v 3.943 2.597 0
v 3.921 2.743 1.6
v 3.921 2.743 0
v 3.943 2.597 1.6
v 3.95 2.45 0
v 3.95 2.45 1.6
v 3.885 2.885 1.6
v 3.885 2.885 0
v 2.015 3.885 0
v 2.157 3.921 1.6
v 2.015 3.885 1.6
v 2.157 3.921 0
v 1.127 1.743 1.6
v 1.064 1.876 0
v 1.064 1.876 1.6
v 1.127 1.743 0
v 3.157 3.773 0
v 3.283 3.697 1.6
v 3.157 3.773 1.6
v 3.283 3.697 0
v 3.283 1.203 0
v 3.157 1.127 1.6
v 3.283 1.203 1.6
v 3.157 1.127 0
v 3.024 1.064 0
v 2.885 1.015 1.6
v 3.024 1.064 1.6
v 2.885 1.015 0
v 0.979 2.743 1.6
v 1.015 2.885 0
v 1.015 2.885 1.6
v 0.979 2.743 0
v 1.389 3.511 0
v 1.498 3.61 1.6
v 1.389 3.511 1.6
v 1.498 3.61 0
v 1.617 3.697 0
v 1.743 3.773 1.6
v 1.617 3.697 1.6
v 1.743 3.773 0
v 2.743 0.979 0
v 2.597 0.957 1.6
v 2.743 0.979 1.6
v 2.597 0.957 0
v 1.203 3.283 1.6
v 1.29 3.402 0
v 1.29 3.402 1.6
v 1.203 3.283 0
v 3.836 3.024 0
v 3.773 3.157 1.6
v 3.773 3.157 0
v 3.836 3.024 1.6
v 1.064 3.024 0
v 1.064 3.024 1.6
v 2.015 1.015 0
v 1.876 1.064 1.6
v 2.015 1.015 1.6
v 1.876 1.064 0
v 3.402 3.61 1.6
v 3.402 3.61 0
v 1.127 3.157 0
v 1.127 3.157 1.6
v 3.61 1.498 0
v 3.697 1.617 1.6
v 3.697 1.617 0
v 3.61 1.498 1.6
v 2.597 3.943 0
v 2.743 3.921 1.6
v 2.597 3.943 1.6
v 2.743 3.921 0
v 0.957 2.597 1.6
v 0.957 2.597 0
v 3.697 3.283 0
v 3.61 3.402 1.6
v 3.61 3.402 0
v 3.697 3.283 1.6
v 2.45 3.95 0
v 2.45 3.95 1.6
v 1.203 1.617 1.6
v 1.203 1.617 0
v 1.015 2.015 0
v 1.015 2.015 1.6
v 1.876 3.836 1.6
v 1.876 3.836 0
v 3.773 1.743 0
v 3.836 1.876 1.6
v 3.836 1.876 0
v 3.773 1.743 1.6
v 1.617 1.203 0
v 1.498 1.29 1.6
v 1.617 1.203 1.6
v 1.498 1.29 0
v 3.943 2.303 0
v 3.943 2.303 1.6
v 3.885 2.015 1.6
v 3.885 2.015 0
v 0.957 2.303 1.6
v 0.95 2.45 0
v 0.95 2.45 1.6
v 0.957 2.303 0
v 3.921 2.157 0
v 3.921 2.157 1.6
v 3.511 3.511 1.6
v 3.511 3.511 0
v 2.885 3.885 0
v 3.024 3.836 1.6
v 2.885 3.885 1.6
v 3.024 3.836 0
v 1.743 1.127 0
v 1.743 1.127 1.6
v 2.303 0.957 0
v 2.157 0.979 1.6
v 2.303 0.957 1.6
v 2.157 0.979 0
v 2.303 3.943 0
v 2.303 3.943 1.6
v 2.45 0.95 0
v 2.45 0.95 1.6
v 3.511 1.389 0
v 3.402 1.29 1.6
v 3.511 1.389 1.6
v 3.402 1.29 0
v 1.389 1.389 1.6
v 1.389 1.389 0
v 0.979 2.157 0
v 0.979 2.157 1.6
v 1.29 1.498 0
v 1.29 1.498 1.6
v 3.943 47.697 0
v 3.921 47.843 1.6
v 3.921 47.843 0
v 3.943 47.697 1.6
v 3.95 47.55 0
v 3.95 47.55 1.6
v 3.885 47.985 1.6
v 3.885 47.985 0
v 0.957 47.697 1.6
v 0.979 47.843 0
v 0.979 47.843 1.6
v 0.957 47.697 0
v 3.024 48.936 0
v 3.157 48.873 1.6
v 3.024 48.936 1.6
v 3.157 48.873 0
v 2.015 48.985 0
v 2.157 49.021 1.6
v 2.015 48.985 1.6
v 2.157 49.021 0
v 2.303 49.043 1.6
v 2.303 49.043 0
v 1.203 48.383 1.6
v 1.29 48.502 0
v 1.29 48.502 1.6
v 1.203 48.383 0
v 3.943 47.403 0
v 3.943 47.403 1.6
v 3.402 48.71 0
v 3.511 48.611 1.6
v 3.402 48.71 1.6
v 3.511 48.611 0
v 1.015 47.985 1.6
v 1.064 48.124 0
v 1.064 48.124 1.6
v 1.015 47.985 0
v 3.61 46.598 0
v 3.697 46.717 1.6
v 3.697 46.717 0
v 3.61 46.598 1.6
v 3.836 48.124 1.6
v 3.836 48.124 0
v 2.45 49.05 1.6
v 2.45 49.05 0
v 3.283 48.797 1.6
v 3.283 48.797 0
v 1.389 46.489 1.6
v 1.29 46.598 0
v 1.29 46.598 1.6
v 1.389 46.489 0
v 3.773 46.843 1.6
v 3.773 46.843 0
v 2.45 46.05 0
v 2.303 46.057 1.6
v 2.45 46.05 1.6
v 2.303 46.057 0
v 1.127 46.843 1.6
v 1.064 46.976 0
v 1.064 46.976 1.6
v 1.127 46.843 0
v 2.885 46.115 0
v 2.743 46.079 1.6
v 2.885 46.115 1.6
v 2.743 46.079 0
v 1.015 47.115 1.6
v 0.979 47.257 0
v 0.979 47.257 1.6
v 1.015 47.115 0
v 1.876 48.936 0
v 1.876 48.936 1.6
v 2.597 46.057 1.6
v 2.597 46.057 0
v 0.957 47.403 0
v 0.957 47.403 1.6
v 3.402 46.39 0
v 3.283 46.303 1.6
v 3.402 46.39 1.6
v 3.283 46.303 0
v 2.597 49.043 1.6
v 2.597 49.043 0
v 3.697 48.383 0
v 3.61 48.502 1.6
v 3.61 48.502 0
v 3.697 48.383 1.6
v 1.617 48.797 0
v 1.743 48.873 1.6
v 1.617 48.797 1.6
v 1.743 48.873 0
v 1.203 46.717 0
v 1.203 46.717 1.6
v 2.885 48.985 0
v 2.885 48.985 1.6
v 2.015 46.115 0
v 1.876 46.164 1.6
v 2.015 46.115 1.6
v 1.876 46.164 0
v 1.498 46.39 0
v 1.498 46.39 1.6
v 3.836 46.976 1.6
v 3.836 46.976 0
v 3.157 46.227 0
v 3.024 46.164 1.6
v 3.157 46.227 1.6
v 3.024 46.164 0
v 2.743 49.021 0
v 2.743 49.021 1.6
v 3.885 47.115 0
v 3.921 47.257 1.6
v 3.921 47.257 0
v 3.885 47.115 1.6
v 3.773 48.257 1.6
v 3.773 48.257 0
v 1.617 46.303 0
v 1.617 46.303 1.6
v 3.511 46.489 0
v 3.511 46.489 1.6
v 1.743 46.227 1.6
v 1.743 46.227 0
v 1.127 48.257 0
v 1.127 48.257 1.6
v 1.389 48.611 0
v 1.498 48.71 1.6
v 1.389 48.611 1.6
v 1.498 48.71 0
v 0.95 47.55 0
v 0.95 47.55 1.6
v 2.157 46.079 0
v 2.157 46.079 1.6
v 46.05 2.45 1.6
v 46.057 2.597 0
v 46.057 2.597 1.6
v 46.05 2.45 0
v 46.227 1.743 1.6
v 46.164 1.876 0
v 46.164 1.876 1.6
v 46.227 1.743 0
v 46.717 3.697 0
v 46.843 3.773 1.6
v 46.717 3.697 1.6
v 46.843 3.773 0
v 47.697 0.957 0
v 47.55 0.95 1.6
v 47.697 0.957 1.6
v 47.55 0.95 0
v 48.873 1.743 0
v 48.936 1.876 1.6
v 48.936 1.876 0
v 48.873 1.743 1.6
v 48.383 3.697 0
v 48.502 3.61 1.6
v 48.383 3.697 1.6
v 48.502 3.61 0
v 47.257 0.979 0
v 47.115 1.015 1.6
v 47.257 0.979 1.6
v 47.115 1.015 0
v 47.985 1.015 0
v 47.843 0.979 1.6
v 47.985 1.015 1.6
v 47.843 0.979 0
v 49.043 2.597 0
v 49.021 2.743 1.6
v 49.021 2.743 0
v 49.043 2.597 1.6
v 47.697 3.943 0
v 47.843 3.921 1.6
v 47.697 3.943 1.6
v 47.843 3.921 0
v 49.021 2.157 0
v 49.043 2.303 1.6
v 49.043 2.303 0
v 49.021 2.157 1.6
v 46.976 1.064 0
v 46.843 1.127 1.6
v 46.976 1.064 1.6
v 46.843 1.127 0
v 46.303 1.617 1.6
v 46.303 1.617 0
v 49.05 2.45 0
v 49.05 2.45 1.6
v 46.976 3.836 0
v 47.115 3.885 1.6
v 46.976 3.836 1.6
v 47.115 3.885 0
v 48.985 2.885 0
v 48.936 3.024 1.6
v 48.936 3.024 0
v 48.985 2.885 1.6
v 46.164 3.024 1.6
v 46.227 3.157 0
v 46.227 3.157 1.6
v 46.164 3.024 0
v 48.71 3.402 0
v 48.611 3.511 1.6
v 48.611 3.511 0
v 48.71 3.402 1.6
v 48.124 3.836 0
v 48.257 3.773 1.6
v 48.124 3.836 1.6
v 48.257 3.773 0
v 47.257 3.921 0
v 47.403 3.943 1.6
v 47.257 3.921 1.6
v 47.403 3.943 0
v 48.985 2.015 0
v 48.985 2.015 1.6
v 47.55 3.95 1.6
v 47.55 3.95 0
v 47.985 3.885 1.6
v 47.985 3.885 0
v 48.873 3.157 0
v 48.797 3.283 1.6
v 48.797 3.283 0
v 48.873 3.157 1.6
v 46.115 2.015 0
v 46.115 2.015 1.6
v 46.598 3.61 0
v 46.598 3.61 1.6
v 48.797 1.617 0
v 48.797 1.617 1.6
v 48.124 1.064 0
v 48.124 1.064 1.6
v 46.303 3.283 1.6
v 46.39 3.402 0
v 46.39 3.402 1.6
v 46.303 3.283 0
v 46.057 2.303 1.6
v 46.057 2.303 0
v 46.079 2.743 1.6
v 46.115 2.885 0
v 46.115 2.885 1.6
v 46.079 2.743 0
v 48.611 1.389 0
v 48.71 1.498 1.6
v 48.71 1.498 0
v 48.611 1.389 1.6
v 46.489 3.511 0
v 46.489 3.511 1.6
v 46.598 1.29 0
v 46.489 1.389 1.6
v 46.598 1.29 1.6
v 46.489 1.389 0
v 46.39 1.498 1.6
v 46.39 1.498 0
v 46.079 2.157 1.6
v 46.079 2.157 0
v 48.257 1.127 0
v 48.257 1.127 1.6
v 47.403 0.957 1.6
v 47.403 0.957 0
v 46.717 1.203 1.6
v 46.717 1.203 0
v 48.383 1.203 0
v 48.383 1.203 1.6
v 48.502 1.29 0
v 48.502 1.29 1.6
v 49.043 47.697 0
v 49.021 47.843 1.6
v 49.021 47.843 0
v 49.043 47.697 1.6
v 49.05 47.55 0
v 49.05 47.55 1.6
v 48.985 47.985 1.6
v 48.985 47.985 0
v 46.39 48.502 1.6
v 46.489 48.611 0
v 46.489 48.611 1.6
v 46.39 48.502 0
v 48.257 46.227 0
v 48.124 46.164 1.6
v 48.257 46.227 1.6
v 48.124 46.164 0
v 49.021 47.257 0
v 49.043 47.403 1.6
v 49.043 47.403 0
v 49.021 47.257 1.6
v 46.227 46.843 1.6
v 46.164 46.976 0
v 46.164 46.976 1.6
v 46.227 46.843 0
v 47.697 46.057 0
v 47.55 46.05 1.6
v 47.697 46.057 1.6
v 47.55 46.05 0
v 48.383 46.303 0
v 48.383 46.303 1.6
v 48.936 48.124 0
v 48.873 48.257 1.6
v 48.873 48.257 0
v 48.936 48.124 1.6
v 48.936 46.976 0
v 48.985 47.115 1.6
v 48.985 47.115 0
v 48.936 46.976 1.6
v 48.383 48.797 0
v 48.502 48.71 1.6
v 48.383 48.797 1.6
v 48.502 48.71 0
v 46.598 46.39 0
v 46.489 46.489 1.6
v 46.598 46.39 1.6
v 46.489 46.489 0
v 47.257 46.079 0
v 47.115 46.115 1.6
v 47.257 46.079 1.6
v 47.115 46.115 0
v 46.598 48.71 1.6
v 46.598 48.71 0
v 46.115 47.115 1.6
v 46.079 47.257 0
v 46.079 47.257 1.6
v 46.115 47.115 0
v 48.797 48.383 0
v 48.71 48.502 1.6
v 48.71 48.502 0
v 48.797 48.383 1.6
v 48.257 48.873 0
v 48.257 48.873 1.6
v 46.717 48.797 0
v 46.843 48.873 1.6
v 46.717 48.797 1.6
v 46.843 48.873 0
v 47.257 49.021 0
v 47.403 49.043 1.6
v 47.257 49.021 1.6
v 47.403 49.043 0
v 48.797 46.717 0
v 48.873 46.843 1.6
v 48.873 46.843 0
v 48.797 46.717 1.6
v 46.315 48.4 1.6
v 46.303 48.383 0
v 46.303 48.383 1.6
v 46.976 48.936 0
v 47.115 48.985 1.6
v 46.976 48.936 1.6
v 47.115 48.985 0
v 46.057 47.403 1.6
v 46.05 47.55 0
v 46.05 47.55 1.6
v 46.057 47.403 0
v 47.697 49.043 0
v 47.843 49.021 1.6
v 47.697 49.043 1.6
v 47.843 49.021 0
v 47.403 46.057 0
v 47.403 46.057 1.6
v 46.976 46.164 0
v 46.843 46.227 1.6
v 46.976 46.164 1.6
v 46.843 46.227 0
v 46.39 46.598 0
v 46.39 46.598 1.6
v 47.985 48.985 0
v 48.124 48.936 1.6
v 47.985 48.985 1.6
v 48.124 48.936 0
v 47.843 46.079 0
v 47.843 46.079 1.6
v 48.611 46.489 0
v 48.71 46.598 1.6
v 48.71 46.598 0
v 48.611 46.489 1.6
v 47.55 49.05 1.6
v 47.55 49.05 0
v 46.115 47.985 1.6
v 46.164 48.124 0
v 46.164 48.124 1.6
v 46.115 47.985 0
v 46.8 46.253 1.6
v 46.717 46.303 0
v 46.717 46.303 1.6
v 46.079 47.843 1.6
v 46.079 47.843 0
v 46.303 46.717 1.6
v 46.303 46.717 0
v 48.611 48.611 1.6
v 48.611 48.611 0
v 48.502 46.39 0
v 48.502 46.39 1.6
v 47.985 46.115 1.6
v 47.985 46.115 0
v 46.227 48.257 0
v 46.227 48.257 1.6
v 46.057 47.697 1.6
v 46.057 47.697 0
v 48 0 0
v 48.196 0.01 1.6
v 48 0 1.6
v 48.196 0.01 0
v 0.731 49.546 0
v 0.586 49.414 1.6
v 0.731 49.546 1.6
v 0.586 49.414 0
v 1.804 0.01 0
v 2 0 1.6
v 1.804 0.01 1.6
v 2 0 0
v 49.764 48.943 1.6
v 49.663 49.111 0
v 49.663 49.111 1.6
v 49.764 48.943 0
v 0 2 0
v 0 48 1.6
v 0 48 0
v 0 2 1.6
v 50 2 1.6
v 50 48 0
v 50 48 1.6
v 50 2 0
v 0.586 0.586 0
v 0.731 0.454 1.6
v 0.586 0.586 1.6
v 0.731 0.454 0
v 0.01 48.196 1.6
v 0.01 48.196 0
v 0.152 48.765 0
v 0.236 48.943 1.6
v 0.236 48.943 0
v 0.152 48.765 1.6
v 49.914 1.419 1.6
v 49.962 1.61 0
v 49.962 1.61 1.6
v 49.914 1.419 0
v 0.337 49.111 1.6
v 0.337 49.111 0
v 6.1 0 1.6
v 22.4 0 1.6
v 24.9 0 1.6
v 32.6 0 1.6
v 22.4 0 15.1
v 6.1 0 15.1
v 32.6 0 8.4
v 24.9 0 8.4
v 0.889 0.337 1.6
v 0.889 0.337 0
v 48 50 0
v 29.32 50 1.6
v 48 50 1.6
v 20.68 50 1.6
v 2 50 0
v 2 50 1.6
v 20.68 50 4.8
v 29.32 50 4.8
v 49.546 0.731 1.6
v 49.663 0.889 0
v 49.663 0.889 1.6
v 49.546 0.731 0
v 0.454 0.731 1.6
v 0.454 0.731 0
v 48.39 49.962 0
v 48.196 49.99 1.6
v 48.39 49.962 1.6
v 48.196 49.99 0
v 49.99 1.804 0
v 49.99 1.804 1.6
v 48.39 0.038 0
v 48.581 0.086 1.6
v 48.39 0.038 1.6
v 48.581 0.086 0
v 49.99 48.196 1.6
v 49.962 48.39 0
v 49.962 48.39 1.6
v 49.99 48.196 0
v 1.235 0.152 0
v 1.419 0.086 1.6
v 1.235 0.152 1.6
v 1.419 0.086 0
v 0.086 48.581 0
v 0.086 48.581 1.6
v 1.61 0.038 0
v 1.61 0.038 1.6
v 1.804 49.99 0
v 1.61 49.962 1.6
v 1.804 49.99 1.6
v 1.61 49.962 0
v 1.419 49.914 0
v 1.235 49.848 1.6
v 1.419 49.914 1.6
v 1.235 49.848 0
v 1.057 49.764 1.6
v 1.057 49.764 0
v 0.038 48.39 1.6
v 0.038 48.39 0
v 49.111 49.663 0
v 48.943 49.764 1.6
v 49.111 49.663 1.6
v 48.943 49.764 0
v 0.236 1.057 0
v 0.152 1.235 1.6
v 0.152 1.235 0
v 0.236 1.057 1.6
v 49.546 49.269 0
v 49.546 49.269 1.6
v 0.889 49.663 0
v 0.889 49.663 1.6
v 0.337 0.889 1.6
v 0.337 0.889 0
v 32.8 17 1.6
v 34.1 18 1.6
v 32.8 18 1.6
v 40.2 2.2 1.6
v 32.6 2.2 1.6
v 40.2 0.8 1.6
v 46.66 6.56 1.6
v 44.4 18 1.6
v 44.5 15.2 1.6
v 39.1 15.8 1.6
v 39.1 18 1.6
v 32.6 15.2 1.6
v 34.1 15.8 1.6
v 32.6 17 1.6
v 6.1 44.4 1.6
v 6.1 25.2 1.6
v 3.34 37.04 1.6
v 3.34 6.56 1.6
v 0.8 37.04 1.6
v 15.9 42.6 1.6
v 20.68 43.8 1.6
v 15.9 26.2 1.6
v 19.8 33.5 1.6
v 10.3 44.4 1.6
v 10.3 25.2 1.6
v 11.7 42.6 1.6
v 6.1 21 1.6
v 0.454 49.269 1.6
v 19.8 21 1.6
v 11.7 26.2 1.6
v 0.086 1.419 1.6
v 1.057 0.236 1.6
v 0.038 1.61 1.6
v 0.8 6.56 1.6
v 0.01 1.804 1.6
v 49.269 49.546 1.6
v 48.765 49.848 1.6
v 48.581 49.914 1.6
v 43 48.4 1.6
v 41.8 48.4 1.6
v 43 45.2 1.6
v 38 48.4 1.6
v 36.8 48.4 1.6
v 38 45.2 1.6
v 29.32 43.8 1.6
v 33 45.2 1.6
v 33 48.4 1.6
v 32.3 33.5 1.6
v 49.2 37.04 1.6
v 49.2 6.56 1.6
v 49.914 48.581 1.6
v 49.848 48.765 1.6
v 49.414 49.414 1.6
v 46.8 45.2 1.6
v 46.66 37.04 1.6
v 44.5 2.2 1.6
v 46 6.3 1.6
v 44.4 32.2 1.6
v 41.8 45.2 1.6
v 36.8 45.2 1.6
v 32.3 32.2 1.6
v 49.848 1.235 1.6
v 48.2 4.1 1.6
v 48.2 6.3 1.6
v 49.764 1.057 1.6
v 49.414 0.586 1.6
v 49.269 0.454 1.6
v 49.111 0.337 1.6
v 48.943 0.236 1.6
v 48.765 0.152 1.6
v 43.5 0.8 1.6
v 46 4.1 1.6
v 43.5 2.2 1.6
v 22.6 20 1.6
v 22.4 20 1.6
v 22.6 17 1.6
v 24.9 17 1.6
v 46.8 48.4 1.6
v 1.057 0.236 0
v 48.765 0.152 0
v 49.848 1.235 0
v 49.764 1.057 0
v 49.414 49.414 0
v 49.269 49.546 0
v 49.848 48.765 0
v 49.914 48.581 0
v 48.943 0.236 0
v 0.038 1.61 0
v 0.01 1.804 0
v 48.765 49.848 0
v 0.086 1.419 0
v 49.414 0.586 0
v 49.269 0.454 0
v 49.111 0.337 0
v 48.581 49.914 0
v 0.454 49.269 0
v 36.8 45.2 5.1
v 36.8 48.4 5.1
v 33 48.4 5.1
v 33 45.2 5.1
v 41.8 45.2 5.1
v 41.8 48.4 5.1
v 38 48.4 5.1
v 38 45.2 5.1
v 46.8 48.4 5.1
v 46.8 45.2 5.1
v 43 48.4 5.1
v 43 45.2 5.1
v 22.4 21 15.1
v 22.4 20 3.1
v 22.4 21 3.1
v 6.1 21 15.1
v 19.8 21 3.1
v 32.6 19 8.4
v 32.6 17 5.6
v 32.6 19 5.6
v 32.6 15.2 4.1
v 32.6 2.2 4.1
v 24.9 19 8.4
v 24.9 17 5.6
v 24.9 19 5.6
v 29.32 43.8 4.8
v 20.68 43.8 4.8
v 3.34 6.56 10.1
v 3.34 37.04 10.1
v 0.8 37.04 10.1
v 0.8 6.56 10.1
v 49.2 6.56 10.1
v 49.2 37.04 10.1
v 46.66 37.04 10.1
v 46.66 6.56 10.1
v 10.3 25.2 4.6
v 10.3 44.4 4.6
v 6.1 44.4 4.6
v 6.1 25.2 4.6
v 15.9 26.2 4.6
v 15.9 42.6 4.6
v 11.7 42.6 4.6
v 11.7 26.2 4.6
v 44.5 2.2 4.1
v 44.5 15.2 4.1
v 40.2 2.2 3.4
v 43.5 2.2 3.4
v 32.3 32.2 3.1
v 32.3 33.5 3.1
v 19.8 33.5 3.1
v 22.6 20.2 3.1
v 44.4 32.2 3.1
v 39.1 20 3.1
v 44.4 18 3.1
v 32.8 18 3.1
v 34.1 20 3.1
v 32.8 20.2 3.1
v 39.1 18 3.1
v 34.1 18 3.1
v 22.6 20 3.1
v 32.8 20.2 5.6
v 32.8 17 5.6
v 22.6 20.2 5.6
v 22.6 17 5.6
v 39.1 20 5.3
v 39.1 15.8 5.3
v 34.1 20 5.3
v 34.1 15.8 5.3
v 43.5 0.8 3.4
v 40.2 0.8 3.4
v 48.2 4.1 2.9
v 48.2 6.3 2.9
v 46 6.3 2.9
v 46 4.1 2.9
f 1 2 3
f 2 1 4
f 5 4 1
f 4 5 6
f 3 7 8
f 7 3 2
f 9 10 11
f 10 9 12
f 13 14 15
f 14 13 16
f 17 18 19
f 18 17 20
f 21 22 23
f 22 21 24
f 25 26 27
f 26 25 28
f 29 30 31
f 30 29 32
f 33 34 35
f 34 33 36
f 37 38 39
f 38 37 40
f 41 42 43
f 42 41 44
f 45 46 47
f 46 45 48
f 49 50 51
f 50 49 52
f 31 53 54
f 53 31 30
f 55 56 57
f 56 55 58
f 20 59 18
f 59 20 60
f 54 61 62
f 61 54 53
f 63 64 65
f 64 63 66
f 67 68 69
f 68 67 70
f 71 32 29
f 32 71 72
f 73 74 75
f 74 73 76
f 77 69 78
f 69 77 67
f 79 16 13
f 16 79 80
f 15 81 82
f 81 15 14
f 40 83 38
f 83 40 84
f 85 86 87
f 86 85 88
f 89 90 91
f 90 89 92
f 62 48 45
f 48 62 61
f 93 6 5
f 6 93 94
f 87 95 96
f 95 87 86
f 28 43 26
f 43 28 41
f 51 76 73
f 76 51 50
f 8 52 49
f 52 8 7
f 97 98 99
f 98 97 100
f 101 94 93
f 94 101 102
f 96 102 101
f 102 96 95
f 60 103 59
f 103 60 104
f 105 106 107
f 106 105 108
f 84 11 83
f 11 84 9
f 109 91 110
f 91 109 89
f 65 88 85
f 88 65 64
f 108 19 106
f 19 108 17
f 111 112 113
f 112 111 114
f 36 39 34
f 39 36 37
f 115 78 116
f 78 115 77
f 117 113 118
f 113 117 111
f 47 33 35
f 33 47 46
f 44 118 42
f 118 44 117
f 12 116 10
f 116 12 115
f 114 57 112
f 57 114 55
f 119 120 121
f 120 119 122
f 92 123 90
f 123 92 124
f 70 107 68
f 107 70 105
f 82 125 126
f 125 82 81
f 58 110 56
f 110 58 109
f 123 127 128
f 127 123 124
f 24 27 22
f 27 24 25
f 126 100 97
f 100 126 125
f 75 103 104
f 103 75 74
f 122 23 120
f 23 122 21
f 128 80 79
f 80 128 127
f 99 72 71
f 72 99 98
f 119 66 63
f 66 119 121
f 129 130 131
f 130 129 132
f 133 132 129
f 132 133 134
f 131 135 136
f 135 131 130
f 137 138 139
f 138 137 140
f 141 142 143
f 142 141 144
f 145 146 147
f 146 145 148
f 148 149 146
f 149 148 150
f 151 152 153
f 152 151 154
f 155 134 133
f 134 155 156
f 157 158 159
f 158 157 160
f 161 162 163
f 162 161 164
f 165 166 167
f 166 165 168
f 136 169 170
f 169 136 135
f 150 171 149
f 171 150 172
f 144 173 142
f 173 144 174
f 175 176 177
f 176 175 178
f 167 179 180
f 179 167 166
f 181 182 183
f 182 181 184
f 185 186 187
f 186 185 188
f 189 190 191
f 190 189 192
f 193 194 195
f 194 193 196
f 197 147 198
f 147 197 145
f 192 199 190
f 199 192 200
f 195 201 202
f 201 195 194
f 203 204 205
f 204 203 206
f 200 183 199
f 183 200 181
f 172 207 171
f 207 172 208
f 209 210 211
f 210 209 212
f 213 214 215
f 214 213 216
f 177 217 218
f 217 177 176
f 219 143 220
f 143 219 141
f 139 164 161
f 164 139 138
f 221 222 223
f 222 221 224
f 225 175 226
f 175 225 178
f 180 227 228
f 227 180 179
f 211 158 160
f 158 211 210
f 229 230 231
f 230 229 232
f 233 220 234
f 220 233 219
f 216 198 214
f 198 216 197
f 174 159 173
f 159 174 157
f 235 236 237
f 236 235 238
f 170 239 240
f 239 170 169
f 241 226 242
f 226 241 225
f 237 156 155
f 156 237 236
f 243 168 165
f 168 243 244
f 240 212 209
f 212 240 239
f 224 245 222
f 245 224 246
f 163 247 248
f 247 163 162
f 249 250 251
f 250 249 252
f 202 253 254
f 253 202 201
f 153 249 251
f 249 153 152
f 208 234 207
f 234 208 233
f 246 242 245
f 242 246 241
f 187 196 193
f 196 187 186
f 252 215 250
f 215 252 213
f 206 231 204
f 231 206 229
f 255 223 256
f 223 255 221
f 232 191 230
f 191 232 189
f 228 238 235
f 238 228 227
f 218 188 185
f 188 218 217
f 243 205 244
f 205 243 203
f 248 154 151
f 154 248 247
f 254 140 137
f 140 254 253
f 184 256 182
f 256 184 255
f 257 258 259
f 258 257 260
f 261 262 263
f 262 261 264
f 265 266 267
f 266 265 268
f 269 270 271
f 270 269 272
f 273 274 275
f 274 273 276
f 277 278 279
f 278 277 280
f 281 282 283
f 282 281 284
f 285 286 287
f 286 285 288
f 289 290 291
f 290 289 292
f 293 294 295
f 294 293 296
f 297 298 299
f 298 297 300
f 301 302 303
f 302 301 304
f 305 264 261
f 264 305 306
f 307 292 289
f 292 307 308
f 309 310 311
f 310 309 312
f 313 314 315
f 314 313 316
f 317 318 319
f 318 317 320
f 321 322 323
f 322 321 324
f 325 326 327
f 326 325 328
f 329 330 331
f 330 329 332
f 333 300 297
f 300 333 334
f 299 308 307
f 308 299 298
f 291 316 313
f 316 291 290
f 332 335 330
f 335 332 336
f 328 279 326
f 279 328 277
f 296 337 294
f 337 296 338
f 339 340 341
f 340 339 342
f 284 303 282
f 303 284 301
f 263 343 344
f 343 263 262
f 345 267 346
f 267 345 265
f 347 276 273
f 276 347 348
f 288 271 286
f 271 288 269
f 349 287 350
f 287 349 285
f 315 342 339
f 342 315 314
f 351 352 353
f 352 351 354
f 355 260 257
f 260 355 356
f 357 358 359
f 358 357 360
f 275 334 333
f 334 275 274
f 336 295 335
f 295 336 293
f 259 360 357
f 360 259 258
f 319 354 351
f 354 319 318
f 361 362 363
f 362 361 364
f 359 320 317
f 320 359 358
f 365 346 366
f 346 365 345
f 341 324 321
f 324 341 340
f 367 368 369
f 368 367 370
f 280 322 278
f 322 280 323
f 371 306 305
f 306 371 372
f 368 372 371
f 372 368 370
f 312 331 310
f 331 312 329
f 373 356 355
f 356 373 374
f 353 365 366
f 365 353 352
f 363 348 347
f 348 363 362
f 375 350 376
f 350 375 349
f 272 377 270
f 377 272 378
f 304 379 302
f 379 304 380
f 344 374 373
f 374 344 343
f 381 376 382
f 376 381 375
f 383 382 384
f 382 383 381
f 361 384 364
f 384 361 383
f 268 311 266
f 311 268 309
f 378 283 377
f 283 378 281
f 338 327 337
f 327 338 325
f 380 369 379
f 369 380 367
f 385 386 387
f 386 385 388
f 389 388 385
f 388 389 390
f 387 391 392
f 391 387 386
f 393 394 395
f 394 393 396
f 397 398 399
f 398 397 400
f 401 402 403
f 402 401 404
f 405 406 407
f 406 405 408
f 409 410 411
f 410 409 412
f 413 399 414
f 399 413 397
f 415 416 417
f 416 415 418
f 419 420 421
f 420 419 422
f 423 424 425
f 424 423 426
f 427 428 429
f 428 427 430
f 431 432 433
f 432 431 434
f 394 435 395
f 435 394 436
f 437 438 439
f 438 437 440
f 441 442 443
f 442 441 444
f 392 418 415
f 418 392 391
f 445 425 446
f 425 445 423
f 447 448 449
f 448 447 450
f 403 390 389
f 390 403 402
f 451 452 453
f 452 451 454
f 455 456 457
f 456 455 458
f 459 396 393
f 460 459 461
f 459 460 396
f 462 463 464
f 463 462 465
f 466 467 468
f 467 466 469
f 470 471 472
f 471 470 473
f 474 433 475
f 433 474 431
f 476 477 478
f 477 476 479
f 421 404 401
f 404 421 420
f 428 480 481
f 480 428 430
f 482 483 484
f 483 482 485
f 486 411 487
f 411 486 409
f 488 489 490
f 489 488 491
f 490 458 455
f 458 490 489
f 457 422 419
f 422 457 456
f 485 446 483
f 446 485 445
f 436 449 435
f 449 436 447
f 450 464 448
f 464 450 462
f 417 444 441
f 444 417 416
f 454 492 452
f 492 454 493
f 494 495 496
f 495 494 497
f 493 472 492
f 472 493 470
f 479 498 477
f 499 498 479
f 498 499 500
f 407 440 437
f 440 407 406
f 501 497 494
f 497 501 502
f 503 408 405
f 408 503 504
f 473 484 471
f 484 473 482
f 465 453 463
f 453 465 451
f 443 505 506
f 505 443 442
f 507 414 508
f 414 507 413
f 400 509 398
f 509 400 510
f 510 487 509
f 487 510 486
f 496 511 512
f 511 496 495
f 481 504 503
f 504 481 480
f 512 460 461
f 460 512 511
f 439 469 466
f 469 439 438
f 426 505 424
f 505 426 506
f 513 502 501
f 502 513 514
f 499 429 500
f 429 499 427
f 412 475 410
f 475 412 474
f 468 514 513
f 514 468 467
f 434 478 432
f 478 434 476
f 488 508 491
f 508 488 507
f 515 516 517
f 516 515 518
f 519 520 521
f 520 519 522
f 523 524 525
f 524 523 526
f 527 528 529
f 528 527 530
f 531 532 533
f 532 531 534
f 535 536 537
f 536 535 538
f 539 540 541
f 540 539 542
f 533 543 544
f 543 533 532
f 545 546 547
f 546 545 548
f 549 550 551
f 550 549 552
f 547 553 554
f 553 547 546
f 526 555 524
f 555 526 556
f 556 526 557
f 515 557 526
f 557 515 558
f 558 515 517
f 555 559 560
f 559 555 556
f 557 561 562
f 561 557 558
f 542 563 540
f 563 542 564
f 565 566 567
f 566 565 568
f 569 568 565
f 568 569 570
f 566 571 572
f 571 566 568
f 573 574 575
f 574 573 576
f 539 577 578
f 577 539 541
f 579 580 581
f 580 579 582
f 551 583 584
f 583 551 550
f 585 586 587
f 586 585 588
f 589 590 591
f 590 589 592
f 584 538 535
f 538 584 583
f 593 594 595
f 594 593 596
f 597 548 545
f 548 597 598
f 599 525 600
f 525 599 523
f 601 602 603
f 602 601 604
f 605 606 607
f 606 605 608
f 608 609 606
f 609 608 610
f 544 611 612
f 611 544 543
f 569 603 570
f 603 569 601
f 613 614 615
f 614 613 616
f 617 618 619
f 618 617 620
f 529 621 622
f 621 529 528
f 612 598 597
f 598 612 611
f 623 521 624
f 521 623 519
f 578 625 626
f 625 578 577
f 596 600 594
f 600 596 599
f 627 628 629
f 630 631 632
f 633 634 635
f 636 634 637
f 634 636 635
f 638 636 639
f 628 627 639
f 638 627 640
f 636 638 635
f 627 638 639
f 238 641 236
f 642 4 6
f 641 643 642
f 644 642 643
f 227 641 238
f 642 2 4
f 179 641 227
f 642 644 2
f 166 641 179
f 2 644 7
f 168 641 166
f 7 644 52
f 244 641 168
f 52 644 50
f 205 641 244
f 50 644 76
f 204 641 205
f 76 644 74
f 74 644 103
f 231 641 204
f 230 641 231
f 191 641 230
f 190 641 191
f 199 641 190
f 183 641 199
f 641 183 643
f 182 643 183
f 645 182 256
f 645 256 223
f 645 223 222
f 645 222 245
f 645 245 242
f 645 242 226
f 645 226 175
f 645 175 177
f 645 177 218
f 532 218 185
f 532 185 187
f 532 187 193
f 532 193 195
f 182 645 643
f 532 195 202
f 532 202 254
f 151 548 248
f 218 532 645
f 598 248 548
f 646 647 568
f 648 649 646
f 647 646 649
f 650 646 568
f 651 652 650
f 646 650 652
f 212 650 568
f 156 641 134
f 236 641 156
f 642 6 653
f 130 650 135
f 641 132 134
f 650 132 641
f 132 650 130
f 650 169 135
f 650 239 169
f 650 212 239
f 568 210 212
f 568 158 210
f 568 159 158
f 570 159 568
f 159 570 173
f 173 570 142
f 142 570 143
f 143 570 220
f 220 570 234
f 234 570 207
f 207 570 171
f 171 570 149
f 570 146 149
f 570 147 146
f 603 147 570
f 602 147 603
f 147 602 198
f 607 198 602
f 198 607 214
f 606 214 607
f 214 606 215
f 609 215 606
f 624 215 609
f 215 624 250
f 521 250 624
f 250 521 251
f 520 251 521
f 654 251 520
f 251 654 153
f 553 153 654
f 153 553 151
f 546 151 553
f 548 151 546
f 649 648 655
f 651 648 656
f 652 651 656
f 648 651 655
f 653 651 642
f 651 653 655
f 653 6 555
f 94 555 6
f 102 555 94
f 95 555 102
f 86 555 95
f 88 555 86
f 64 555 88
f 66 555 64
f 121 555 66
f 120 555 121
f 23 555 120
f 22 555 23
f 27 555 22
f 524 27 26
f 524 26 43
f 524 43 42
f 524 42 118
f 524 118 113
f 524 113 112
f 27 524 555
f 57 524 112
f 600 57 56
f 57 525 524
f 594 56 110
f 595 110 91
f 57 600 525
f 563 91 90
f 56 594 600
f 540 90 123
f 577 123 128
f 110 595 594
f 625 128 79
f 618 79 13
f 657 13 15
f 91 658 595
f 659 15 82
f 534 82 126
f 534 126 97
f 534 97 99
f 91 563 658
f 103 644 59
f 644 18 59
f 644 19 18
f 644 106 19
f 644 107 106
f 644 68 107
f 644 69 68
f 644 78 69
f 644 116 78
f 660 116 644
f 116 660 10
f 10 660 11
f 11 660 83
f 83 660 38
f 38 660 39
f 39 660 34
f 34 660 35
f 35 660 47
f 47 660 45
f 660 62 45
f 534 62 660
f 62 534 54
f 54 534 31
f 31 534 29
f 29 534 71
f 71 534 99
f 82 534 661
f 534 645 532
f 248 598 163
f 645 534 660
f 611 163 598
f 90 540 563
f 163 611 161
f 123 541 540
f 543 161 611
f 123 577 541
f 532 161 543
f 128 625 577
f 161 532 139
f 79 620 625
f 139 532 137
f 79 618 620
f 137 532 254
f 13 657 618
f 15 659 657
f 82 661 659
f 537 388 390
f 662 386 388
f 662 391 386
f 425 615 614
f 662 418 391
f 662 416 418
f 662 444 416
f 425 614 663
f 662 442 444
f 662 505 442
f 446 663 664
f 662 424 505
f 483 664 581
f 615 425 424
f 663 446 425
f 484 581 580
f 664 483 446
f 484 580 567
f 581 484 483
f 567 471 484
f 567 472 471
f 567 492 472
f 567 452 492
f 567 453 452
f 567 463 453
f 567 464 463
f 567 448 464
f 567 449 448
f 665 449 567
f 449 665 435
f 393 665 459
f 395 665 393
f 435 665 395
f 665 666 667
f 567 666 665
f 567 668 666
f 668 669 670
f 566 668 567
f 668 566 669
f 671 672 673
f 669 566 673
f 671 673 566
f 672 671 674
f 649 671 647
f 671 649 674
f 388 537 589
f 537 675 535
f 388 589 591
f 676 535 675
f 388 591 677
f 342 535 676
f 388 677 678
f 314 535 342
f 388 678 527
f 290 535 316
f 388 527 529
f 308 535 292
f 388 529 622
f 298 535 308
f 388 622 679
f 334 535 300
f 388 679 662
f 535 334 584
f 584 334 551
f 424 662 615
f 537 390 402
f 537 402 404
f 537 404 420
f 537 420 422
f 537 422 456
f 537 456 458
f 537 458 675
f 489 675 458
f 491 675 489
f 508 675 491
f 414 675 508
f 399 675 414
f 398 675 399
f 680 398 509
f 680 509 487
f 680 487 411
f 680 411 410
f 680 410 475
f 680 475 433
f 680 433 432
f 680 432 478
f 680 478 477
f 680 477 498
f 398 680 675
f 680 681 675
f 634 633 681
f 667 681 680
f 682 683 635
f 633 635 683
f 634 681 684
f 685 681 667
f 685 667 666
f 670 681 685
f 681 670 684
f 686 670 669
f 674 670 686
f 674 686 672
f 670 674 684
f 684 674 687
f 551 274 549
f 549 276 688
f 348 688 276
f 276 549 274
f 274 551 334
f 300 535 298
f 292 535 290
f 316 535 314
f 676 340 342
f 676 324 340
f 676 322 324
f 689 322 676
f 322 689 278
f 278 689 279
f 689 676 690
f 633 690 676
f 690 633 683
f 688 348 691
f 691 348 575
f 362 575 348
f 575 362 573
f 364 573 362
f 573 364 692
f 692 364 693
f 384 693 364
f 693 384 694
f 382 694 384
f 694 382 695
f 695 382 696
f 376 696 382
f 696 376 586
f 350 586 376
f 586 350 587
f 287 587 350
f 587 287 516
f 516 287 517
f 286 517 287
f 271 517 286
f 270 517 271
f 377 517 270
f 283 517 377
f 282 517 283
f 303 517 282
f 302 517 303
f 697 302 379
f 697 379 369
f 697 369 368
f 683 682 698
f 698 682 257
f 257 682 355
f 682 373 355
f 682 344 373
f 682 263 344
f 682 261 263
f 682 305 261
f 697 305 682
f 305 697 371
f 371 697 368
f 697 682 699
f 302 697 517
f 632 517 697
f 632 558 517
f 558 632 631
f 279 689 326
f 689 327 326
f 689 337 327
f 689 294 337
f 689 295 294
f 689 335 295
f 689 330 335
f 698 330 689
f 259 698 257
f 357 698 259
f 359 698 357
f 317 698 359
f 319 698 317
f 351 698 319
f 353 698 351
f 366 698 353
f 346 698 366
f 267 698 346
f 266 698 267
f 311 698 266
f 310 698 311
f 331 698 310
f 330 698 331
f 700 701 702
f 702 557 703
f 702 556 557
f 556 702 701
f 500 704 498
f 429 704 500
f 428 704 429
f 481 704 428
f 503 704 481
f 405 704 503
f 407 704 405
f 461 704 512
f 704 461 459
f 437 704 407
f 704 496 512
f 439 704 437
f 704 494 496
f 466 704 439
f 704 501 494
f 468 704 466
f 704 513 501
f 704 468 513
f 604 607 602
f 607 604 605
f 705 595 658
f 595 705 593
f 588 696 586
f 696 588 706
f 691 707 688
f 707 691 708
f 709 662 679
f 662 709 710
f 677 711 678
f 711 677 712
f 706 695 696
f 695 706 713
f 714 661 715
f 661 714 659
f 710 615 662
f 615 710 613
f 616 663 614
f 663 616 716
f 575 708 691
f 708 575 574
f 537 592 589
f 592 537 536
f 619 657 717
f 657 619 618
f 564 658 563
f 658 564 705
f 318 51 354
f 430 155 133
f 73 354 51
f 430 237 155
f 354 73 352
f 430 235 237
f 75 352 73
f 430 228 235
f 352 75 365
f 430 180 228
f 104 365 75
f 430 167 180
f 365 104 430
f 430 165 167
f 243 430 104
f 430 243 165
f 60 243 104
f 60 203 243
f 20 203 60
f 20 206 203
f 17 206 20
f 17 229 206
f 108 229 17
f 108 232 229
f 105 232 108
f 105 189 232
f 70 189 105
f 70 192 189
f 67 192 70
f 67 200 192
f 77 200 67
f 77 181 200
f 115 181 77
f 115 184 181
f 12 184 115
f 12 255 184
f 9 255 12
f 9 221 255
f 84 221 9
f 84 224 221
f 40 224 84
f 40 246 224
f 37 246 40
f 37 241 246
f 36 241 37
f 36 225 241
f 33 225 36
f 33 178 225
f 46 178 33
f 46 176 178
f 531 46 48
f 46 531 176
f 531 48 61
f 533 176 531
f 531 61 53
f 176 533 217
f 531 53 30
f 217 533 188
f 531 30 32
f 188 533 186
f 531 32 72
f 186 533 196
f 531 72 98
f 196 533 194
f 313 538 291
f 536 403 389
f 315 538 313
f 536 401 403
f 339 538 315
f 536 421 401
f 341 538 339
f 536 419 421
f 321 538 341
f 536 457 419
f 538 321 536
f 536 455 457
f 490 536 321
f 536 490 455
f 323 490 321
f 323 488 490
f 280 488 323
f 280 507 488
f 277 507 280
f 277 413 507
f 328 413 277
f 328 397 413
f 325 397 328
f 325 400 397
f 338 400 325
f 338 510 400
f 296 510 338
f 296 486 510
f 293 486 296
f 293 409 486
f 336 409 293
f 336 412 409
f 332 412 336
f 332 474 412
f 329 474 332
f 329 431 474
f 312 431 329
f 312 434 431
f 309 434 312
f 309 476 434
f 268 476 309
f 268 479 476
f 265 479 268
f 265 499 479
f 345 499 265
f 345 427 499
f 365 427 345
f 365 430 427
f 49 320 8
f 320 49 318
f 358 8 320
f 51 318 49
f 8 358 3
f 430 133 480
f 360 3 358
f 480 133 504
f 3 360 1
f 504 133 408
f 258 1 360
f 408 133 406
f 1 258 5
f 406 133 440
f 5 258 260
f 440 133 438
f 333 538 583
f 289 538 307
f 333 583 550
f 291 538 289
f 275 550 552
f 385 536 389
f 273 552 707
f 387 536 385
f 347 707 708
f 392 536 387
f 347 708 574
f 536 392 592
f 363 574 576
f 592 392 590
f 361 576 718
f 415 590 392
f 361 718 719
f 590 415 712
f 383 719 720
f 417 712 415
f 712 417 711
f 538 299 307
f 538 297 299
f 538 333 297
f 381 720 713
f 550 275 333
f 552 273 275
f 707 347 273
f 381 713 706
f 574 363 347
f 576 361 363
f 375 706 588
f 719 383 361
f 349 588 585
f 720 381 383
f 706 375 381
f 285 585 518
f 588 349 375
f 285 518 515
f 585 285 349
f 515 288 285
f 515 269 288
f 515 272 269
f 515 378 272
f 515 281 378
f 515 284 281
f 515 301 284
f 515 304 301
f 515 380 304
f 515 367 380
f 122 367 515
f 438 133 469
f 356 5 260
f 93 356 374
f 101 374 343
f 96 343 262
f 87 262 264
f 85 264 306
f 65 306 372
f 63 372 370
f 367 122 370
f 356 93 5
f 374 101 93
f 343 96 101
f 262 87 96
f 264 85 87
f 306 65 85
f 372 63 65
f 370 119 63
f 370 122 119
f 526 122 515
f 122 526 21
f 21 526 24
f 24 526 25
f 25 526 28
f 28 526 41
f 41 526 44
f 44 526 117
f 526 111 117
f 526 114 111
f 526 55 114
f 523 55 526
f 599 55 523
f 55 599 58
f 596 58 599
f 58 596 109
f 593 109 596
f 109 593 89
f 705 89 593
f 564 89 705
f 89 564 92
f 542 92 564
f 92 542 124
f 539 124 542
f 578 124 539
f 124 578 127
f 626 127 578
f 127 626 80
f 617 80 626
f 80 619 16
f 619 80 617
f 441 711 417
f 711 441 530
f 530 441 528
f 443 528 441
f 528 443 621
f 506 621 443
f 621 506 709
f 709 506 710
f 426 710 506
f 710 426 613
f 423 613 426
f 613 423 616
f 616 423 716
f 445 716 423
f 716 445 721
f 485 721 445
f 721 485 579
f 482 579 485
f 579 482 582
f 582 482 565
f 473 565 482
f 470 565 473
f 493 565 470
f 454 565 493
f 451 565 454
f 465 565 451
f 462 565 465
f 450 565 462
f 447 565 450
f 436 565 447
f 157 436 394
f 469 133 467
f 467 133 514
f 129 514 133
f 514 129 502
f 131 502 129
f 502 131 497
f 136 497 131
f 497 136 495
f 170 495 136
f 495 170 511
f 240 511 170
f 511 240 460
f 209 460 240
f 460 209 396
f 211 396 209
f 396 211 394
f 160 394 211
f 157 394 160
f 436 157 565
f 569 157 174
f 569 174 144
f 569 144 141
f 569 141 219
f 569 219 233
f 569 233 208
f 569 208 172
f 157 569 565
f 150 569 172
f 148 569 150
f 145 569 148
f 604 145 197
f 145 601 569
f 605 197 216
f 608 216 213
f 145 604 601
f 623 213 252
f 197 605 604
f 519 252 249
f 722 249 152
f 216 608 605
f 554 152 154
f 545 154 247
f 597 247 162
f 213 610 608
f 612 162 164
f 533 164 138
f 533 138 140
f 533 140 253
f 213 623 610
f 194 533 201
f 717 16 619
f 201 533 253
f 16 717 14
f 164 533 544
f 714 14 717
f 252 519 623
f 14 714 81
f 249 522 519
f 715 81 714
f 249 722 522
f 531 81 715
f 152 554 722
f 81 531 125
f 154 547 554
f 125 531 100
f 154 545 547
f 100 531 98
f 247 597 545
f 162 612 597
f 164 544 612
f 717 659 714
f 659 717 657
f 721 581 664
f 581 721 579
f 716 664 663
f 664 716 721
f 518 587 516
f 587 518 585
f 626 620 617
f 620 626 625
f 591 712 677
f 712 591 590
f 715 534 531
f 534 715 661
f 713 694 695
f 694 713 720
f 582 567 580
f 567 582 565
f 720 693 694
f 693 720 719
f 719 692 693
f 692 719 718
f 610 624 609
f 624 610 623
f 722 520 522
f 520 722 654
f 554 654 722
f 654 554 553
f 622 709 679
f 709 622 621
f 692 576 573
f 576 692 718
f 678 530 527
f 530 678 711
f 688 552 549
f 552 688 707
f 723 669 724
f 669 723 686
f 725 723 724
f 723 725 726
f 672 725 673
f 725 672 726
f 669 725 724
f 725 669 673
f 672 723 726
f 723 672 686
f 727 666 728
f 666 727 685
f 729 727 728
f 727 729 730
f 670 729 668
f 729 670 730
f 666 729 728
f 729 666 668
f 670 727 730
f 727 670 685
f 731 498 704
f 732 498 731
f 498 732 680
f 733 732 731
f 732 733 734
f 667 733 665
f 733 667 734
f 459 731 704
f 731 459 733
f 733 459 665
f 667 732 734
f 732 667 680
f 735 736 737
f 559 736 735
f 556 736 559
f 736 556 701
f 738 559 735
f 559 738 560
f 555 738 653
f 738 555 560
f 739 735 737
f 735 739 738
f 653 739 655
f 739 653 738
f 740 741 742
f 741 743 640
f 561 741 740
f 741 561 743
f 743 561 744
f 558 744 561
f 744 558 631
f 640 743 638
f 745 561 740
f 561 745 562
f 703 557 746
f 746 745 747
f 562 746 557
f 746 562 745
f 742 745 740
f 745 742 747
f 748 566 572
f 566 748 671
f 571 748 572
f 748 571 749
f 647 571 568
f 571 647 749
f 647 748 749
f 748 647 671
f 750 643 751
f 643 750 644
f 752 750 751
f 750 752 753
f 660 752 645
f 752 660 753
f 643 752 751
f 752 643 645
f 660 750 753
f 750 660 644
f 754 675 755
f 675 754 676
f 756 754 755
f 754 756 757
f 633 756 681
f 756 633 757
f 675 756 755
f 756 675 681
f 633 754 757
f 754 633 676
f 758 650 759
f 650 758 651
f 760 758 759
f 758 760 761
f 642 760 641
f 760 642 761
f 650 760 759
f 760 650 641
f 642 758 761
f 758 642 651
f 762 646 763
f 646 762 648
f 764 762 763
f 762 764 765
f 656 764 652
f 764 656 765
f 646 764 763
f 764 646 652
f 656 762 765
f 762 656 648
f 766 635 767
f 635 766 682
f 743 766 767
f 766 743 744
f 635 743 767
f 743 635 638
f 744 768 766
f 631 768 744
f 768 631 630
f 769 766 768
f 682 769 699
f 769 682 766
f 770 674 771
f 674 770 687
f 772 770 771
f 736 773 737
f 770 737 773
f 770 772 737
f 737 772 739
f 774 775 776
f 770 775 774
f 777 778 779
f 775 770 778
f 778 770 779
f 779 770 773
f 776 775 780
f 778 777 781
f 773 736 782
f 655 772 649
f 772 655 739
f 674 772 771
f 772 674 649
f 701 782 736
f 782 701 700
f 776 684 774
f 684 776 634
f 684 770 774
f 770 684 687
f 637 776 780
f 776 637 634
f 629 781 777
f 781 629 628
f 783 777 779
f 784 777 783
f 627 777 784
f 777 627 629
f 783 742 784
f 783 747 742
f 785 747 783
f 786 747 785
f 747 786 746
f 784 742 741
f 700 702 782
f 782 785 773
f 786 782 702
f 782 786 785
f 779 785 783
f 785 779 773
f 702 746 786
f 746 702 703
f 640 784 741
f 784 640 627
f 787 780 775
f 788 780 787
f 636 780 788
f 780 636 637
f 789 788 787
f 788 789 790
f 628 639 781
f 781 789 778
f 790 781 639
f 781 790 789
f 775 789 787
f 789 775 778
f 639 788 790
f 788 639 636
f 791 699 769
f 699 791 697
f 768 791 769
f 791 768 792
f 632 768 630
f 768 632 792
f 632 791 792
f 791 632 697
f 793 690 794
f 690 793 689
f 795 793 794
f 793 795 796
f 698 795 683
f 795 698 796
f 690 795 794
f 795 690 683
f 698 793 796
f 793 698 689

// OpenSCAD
// Luckfox Pico Ultra W enclosure-fit mock.
// Units: mm.
//
// Hard dimensions come from the Luckfox board drawing and product dimension
// image. Component heights are conservative nominal envelopes based on the
// installed connector families and must be checked against the received board
// before finalizing port cutouts or standoffs.

$fn = 64;

board_x = 50.00;
board_y = 50.00;
board_r = 2.00;
pcb_thickness = 1.60;

mount_hole_d = 3.00;
mount_hole_edge = (50.00 - 45.10) / 2;

module rounded_xy_prism(size_x, size_y, radius, height) {
    linear_extrude(height = height)
        offset(r = radius)
            translate([radius, radius])
                square([size_x - 2 * radius, size_y - 2 * radius]);
}

module pcb() {
    difference() {
        rounded_xy_prism(board_x, board_y, board_r, pcb_thickness);
        for (x = [mount_hole_edge, board_x - mount_hole_edge])
            for (y = [mount_hole_edge, board_y - mount_hole_edge])
                translate([x, y, -0.1])
                    cylinder(d = mount_hole_d, h = pcb_thickness + 0.2);
    }
}

module component_block(origin, size) {
    translate(origin) cube(size);
}

union() {
    pcb();

    // Tall edge connectors. Y=0 is the Ethernet/USB-A edge.
    component_block([6.10, 0.00, pcb_thickness], [16.30, 21.00, 13.50]); // RJ45
    component_block([24.90, 0.00, pcb_thickness], [7.70, 19.00, 6.80]);  // USB-A
    component_block([20.68, 43.80, pcb_thickness], [8.64, 6.20, 3.20]); // USB-C

    // The dimension drawing fixes the header start and length.
    component_block([0.80, 6.56, pcb_thickness], [2.54, 30.48, 8.50]);
    component_block([46.66, 6.56, pcb_thickness], [2.54, 30.48, 8.50]);

    // FFC connectors and mechanically significant onboard blocks.
    component_block([6.10, 25.20, pcb_thickness], [4.20, 19.20, 3.00]); // LCD FFC
    component_block([11.70, 26.20, pcb_thickness], [4.20, 16.40, 3.00]); // Camera FFC
    component_block([32.20, 2.20, pcb_thickness], [12.30, 13.00, 2.50]); // Wi-Fi shield
    component_block([19.80, 20.00, pcb_thickness], [12.50, 13.50, 1.50]); // SoC
    component_block([32.20, 18.00, pcb_thickness], [12.20, 14.20, 1.50]); // eMMC/RAM
    component_block([22.60, 17.00, pcb_thickness], [10.20, 3.20, 4.00]); // PoE header
    component_block([34.10, 15.80, pcb_thickness], [5.00, 4.20, 3.70]);  // RTC header

    // User, boot, and reset buttons near the USB-C edge.
    for (x = [33.00, 38.00, 43.00])
        component_block([x, 45.20, pcb_thickness], [3.80, 3.20, 3.50]);

    // U.FL antenna connector and microphone package.
    component_block([40.20, 0.80, pcb_thickness], [3.30, 3.30, 1.80]);
    component_block([46.00, 4.10, pcb_thickness], [2.20, 2.20, 1.30]);
}
